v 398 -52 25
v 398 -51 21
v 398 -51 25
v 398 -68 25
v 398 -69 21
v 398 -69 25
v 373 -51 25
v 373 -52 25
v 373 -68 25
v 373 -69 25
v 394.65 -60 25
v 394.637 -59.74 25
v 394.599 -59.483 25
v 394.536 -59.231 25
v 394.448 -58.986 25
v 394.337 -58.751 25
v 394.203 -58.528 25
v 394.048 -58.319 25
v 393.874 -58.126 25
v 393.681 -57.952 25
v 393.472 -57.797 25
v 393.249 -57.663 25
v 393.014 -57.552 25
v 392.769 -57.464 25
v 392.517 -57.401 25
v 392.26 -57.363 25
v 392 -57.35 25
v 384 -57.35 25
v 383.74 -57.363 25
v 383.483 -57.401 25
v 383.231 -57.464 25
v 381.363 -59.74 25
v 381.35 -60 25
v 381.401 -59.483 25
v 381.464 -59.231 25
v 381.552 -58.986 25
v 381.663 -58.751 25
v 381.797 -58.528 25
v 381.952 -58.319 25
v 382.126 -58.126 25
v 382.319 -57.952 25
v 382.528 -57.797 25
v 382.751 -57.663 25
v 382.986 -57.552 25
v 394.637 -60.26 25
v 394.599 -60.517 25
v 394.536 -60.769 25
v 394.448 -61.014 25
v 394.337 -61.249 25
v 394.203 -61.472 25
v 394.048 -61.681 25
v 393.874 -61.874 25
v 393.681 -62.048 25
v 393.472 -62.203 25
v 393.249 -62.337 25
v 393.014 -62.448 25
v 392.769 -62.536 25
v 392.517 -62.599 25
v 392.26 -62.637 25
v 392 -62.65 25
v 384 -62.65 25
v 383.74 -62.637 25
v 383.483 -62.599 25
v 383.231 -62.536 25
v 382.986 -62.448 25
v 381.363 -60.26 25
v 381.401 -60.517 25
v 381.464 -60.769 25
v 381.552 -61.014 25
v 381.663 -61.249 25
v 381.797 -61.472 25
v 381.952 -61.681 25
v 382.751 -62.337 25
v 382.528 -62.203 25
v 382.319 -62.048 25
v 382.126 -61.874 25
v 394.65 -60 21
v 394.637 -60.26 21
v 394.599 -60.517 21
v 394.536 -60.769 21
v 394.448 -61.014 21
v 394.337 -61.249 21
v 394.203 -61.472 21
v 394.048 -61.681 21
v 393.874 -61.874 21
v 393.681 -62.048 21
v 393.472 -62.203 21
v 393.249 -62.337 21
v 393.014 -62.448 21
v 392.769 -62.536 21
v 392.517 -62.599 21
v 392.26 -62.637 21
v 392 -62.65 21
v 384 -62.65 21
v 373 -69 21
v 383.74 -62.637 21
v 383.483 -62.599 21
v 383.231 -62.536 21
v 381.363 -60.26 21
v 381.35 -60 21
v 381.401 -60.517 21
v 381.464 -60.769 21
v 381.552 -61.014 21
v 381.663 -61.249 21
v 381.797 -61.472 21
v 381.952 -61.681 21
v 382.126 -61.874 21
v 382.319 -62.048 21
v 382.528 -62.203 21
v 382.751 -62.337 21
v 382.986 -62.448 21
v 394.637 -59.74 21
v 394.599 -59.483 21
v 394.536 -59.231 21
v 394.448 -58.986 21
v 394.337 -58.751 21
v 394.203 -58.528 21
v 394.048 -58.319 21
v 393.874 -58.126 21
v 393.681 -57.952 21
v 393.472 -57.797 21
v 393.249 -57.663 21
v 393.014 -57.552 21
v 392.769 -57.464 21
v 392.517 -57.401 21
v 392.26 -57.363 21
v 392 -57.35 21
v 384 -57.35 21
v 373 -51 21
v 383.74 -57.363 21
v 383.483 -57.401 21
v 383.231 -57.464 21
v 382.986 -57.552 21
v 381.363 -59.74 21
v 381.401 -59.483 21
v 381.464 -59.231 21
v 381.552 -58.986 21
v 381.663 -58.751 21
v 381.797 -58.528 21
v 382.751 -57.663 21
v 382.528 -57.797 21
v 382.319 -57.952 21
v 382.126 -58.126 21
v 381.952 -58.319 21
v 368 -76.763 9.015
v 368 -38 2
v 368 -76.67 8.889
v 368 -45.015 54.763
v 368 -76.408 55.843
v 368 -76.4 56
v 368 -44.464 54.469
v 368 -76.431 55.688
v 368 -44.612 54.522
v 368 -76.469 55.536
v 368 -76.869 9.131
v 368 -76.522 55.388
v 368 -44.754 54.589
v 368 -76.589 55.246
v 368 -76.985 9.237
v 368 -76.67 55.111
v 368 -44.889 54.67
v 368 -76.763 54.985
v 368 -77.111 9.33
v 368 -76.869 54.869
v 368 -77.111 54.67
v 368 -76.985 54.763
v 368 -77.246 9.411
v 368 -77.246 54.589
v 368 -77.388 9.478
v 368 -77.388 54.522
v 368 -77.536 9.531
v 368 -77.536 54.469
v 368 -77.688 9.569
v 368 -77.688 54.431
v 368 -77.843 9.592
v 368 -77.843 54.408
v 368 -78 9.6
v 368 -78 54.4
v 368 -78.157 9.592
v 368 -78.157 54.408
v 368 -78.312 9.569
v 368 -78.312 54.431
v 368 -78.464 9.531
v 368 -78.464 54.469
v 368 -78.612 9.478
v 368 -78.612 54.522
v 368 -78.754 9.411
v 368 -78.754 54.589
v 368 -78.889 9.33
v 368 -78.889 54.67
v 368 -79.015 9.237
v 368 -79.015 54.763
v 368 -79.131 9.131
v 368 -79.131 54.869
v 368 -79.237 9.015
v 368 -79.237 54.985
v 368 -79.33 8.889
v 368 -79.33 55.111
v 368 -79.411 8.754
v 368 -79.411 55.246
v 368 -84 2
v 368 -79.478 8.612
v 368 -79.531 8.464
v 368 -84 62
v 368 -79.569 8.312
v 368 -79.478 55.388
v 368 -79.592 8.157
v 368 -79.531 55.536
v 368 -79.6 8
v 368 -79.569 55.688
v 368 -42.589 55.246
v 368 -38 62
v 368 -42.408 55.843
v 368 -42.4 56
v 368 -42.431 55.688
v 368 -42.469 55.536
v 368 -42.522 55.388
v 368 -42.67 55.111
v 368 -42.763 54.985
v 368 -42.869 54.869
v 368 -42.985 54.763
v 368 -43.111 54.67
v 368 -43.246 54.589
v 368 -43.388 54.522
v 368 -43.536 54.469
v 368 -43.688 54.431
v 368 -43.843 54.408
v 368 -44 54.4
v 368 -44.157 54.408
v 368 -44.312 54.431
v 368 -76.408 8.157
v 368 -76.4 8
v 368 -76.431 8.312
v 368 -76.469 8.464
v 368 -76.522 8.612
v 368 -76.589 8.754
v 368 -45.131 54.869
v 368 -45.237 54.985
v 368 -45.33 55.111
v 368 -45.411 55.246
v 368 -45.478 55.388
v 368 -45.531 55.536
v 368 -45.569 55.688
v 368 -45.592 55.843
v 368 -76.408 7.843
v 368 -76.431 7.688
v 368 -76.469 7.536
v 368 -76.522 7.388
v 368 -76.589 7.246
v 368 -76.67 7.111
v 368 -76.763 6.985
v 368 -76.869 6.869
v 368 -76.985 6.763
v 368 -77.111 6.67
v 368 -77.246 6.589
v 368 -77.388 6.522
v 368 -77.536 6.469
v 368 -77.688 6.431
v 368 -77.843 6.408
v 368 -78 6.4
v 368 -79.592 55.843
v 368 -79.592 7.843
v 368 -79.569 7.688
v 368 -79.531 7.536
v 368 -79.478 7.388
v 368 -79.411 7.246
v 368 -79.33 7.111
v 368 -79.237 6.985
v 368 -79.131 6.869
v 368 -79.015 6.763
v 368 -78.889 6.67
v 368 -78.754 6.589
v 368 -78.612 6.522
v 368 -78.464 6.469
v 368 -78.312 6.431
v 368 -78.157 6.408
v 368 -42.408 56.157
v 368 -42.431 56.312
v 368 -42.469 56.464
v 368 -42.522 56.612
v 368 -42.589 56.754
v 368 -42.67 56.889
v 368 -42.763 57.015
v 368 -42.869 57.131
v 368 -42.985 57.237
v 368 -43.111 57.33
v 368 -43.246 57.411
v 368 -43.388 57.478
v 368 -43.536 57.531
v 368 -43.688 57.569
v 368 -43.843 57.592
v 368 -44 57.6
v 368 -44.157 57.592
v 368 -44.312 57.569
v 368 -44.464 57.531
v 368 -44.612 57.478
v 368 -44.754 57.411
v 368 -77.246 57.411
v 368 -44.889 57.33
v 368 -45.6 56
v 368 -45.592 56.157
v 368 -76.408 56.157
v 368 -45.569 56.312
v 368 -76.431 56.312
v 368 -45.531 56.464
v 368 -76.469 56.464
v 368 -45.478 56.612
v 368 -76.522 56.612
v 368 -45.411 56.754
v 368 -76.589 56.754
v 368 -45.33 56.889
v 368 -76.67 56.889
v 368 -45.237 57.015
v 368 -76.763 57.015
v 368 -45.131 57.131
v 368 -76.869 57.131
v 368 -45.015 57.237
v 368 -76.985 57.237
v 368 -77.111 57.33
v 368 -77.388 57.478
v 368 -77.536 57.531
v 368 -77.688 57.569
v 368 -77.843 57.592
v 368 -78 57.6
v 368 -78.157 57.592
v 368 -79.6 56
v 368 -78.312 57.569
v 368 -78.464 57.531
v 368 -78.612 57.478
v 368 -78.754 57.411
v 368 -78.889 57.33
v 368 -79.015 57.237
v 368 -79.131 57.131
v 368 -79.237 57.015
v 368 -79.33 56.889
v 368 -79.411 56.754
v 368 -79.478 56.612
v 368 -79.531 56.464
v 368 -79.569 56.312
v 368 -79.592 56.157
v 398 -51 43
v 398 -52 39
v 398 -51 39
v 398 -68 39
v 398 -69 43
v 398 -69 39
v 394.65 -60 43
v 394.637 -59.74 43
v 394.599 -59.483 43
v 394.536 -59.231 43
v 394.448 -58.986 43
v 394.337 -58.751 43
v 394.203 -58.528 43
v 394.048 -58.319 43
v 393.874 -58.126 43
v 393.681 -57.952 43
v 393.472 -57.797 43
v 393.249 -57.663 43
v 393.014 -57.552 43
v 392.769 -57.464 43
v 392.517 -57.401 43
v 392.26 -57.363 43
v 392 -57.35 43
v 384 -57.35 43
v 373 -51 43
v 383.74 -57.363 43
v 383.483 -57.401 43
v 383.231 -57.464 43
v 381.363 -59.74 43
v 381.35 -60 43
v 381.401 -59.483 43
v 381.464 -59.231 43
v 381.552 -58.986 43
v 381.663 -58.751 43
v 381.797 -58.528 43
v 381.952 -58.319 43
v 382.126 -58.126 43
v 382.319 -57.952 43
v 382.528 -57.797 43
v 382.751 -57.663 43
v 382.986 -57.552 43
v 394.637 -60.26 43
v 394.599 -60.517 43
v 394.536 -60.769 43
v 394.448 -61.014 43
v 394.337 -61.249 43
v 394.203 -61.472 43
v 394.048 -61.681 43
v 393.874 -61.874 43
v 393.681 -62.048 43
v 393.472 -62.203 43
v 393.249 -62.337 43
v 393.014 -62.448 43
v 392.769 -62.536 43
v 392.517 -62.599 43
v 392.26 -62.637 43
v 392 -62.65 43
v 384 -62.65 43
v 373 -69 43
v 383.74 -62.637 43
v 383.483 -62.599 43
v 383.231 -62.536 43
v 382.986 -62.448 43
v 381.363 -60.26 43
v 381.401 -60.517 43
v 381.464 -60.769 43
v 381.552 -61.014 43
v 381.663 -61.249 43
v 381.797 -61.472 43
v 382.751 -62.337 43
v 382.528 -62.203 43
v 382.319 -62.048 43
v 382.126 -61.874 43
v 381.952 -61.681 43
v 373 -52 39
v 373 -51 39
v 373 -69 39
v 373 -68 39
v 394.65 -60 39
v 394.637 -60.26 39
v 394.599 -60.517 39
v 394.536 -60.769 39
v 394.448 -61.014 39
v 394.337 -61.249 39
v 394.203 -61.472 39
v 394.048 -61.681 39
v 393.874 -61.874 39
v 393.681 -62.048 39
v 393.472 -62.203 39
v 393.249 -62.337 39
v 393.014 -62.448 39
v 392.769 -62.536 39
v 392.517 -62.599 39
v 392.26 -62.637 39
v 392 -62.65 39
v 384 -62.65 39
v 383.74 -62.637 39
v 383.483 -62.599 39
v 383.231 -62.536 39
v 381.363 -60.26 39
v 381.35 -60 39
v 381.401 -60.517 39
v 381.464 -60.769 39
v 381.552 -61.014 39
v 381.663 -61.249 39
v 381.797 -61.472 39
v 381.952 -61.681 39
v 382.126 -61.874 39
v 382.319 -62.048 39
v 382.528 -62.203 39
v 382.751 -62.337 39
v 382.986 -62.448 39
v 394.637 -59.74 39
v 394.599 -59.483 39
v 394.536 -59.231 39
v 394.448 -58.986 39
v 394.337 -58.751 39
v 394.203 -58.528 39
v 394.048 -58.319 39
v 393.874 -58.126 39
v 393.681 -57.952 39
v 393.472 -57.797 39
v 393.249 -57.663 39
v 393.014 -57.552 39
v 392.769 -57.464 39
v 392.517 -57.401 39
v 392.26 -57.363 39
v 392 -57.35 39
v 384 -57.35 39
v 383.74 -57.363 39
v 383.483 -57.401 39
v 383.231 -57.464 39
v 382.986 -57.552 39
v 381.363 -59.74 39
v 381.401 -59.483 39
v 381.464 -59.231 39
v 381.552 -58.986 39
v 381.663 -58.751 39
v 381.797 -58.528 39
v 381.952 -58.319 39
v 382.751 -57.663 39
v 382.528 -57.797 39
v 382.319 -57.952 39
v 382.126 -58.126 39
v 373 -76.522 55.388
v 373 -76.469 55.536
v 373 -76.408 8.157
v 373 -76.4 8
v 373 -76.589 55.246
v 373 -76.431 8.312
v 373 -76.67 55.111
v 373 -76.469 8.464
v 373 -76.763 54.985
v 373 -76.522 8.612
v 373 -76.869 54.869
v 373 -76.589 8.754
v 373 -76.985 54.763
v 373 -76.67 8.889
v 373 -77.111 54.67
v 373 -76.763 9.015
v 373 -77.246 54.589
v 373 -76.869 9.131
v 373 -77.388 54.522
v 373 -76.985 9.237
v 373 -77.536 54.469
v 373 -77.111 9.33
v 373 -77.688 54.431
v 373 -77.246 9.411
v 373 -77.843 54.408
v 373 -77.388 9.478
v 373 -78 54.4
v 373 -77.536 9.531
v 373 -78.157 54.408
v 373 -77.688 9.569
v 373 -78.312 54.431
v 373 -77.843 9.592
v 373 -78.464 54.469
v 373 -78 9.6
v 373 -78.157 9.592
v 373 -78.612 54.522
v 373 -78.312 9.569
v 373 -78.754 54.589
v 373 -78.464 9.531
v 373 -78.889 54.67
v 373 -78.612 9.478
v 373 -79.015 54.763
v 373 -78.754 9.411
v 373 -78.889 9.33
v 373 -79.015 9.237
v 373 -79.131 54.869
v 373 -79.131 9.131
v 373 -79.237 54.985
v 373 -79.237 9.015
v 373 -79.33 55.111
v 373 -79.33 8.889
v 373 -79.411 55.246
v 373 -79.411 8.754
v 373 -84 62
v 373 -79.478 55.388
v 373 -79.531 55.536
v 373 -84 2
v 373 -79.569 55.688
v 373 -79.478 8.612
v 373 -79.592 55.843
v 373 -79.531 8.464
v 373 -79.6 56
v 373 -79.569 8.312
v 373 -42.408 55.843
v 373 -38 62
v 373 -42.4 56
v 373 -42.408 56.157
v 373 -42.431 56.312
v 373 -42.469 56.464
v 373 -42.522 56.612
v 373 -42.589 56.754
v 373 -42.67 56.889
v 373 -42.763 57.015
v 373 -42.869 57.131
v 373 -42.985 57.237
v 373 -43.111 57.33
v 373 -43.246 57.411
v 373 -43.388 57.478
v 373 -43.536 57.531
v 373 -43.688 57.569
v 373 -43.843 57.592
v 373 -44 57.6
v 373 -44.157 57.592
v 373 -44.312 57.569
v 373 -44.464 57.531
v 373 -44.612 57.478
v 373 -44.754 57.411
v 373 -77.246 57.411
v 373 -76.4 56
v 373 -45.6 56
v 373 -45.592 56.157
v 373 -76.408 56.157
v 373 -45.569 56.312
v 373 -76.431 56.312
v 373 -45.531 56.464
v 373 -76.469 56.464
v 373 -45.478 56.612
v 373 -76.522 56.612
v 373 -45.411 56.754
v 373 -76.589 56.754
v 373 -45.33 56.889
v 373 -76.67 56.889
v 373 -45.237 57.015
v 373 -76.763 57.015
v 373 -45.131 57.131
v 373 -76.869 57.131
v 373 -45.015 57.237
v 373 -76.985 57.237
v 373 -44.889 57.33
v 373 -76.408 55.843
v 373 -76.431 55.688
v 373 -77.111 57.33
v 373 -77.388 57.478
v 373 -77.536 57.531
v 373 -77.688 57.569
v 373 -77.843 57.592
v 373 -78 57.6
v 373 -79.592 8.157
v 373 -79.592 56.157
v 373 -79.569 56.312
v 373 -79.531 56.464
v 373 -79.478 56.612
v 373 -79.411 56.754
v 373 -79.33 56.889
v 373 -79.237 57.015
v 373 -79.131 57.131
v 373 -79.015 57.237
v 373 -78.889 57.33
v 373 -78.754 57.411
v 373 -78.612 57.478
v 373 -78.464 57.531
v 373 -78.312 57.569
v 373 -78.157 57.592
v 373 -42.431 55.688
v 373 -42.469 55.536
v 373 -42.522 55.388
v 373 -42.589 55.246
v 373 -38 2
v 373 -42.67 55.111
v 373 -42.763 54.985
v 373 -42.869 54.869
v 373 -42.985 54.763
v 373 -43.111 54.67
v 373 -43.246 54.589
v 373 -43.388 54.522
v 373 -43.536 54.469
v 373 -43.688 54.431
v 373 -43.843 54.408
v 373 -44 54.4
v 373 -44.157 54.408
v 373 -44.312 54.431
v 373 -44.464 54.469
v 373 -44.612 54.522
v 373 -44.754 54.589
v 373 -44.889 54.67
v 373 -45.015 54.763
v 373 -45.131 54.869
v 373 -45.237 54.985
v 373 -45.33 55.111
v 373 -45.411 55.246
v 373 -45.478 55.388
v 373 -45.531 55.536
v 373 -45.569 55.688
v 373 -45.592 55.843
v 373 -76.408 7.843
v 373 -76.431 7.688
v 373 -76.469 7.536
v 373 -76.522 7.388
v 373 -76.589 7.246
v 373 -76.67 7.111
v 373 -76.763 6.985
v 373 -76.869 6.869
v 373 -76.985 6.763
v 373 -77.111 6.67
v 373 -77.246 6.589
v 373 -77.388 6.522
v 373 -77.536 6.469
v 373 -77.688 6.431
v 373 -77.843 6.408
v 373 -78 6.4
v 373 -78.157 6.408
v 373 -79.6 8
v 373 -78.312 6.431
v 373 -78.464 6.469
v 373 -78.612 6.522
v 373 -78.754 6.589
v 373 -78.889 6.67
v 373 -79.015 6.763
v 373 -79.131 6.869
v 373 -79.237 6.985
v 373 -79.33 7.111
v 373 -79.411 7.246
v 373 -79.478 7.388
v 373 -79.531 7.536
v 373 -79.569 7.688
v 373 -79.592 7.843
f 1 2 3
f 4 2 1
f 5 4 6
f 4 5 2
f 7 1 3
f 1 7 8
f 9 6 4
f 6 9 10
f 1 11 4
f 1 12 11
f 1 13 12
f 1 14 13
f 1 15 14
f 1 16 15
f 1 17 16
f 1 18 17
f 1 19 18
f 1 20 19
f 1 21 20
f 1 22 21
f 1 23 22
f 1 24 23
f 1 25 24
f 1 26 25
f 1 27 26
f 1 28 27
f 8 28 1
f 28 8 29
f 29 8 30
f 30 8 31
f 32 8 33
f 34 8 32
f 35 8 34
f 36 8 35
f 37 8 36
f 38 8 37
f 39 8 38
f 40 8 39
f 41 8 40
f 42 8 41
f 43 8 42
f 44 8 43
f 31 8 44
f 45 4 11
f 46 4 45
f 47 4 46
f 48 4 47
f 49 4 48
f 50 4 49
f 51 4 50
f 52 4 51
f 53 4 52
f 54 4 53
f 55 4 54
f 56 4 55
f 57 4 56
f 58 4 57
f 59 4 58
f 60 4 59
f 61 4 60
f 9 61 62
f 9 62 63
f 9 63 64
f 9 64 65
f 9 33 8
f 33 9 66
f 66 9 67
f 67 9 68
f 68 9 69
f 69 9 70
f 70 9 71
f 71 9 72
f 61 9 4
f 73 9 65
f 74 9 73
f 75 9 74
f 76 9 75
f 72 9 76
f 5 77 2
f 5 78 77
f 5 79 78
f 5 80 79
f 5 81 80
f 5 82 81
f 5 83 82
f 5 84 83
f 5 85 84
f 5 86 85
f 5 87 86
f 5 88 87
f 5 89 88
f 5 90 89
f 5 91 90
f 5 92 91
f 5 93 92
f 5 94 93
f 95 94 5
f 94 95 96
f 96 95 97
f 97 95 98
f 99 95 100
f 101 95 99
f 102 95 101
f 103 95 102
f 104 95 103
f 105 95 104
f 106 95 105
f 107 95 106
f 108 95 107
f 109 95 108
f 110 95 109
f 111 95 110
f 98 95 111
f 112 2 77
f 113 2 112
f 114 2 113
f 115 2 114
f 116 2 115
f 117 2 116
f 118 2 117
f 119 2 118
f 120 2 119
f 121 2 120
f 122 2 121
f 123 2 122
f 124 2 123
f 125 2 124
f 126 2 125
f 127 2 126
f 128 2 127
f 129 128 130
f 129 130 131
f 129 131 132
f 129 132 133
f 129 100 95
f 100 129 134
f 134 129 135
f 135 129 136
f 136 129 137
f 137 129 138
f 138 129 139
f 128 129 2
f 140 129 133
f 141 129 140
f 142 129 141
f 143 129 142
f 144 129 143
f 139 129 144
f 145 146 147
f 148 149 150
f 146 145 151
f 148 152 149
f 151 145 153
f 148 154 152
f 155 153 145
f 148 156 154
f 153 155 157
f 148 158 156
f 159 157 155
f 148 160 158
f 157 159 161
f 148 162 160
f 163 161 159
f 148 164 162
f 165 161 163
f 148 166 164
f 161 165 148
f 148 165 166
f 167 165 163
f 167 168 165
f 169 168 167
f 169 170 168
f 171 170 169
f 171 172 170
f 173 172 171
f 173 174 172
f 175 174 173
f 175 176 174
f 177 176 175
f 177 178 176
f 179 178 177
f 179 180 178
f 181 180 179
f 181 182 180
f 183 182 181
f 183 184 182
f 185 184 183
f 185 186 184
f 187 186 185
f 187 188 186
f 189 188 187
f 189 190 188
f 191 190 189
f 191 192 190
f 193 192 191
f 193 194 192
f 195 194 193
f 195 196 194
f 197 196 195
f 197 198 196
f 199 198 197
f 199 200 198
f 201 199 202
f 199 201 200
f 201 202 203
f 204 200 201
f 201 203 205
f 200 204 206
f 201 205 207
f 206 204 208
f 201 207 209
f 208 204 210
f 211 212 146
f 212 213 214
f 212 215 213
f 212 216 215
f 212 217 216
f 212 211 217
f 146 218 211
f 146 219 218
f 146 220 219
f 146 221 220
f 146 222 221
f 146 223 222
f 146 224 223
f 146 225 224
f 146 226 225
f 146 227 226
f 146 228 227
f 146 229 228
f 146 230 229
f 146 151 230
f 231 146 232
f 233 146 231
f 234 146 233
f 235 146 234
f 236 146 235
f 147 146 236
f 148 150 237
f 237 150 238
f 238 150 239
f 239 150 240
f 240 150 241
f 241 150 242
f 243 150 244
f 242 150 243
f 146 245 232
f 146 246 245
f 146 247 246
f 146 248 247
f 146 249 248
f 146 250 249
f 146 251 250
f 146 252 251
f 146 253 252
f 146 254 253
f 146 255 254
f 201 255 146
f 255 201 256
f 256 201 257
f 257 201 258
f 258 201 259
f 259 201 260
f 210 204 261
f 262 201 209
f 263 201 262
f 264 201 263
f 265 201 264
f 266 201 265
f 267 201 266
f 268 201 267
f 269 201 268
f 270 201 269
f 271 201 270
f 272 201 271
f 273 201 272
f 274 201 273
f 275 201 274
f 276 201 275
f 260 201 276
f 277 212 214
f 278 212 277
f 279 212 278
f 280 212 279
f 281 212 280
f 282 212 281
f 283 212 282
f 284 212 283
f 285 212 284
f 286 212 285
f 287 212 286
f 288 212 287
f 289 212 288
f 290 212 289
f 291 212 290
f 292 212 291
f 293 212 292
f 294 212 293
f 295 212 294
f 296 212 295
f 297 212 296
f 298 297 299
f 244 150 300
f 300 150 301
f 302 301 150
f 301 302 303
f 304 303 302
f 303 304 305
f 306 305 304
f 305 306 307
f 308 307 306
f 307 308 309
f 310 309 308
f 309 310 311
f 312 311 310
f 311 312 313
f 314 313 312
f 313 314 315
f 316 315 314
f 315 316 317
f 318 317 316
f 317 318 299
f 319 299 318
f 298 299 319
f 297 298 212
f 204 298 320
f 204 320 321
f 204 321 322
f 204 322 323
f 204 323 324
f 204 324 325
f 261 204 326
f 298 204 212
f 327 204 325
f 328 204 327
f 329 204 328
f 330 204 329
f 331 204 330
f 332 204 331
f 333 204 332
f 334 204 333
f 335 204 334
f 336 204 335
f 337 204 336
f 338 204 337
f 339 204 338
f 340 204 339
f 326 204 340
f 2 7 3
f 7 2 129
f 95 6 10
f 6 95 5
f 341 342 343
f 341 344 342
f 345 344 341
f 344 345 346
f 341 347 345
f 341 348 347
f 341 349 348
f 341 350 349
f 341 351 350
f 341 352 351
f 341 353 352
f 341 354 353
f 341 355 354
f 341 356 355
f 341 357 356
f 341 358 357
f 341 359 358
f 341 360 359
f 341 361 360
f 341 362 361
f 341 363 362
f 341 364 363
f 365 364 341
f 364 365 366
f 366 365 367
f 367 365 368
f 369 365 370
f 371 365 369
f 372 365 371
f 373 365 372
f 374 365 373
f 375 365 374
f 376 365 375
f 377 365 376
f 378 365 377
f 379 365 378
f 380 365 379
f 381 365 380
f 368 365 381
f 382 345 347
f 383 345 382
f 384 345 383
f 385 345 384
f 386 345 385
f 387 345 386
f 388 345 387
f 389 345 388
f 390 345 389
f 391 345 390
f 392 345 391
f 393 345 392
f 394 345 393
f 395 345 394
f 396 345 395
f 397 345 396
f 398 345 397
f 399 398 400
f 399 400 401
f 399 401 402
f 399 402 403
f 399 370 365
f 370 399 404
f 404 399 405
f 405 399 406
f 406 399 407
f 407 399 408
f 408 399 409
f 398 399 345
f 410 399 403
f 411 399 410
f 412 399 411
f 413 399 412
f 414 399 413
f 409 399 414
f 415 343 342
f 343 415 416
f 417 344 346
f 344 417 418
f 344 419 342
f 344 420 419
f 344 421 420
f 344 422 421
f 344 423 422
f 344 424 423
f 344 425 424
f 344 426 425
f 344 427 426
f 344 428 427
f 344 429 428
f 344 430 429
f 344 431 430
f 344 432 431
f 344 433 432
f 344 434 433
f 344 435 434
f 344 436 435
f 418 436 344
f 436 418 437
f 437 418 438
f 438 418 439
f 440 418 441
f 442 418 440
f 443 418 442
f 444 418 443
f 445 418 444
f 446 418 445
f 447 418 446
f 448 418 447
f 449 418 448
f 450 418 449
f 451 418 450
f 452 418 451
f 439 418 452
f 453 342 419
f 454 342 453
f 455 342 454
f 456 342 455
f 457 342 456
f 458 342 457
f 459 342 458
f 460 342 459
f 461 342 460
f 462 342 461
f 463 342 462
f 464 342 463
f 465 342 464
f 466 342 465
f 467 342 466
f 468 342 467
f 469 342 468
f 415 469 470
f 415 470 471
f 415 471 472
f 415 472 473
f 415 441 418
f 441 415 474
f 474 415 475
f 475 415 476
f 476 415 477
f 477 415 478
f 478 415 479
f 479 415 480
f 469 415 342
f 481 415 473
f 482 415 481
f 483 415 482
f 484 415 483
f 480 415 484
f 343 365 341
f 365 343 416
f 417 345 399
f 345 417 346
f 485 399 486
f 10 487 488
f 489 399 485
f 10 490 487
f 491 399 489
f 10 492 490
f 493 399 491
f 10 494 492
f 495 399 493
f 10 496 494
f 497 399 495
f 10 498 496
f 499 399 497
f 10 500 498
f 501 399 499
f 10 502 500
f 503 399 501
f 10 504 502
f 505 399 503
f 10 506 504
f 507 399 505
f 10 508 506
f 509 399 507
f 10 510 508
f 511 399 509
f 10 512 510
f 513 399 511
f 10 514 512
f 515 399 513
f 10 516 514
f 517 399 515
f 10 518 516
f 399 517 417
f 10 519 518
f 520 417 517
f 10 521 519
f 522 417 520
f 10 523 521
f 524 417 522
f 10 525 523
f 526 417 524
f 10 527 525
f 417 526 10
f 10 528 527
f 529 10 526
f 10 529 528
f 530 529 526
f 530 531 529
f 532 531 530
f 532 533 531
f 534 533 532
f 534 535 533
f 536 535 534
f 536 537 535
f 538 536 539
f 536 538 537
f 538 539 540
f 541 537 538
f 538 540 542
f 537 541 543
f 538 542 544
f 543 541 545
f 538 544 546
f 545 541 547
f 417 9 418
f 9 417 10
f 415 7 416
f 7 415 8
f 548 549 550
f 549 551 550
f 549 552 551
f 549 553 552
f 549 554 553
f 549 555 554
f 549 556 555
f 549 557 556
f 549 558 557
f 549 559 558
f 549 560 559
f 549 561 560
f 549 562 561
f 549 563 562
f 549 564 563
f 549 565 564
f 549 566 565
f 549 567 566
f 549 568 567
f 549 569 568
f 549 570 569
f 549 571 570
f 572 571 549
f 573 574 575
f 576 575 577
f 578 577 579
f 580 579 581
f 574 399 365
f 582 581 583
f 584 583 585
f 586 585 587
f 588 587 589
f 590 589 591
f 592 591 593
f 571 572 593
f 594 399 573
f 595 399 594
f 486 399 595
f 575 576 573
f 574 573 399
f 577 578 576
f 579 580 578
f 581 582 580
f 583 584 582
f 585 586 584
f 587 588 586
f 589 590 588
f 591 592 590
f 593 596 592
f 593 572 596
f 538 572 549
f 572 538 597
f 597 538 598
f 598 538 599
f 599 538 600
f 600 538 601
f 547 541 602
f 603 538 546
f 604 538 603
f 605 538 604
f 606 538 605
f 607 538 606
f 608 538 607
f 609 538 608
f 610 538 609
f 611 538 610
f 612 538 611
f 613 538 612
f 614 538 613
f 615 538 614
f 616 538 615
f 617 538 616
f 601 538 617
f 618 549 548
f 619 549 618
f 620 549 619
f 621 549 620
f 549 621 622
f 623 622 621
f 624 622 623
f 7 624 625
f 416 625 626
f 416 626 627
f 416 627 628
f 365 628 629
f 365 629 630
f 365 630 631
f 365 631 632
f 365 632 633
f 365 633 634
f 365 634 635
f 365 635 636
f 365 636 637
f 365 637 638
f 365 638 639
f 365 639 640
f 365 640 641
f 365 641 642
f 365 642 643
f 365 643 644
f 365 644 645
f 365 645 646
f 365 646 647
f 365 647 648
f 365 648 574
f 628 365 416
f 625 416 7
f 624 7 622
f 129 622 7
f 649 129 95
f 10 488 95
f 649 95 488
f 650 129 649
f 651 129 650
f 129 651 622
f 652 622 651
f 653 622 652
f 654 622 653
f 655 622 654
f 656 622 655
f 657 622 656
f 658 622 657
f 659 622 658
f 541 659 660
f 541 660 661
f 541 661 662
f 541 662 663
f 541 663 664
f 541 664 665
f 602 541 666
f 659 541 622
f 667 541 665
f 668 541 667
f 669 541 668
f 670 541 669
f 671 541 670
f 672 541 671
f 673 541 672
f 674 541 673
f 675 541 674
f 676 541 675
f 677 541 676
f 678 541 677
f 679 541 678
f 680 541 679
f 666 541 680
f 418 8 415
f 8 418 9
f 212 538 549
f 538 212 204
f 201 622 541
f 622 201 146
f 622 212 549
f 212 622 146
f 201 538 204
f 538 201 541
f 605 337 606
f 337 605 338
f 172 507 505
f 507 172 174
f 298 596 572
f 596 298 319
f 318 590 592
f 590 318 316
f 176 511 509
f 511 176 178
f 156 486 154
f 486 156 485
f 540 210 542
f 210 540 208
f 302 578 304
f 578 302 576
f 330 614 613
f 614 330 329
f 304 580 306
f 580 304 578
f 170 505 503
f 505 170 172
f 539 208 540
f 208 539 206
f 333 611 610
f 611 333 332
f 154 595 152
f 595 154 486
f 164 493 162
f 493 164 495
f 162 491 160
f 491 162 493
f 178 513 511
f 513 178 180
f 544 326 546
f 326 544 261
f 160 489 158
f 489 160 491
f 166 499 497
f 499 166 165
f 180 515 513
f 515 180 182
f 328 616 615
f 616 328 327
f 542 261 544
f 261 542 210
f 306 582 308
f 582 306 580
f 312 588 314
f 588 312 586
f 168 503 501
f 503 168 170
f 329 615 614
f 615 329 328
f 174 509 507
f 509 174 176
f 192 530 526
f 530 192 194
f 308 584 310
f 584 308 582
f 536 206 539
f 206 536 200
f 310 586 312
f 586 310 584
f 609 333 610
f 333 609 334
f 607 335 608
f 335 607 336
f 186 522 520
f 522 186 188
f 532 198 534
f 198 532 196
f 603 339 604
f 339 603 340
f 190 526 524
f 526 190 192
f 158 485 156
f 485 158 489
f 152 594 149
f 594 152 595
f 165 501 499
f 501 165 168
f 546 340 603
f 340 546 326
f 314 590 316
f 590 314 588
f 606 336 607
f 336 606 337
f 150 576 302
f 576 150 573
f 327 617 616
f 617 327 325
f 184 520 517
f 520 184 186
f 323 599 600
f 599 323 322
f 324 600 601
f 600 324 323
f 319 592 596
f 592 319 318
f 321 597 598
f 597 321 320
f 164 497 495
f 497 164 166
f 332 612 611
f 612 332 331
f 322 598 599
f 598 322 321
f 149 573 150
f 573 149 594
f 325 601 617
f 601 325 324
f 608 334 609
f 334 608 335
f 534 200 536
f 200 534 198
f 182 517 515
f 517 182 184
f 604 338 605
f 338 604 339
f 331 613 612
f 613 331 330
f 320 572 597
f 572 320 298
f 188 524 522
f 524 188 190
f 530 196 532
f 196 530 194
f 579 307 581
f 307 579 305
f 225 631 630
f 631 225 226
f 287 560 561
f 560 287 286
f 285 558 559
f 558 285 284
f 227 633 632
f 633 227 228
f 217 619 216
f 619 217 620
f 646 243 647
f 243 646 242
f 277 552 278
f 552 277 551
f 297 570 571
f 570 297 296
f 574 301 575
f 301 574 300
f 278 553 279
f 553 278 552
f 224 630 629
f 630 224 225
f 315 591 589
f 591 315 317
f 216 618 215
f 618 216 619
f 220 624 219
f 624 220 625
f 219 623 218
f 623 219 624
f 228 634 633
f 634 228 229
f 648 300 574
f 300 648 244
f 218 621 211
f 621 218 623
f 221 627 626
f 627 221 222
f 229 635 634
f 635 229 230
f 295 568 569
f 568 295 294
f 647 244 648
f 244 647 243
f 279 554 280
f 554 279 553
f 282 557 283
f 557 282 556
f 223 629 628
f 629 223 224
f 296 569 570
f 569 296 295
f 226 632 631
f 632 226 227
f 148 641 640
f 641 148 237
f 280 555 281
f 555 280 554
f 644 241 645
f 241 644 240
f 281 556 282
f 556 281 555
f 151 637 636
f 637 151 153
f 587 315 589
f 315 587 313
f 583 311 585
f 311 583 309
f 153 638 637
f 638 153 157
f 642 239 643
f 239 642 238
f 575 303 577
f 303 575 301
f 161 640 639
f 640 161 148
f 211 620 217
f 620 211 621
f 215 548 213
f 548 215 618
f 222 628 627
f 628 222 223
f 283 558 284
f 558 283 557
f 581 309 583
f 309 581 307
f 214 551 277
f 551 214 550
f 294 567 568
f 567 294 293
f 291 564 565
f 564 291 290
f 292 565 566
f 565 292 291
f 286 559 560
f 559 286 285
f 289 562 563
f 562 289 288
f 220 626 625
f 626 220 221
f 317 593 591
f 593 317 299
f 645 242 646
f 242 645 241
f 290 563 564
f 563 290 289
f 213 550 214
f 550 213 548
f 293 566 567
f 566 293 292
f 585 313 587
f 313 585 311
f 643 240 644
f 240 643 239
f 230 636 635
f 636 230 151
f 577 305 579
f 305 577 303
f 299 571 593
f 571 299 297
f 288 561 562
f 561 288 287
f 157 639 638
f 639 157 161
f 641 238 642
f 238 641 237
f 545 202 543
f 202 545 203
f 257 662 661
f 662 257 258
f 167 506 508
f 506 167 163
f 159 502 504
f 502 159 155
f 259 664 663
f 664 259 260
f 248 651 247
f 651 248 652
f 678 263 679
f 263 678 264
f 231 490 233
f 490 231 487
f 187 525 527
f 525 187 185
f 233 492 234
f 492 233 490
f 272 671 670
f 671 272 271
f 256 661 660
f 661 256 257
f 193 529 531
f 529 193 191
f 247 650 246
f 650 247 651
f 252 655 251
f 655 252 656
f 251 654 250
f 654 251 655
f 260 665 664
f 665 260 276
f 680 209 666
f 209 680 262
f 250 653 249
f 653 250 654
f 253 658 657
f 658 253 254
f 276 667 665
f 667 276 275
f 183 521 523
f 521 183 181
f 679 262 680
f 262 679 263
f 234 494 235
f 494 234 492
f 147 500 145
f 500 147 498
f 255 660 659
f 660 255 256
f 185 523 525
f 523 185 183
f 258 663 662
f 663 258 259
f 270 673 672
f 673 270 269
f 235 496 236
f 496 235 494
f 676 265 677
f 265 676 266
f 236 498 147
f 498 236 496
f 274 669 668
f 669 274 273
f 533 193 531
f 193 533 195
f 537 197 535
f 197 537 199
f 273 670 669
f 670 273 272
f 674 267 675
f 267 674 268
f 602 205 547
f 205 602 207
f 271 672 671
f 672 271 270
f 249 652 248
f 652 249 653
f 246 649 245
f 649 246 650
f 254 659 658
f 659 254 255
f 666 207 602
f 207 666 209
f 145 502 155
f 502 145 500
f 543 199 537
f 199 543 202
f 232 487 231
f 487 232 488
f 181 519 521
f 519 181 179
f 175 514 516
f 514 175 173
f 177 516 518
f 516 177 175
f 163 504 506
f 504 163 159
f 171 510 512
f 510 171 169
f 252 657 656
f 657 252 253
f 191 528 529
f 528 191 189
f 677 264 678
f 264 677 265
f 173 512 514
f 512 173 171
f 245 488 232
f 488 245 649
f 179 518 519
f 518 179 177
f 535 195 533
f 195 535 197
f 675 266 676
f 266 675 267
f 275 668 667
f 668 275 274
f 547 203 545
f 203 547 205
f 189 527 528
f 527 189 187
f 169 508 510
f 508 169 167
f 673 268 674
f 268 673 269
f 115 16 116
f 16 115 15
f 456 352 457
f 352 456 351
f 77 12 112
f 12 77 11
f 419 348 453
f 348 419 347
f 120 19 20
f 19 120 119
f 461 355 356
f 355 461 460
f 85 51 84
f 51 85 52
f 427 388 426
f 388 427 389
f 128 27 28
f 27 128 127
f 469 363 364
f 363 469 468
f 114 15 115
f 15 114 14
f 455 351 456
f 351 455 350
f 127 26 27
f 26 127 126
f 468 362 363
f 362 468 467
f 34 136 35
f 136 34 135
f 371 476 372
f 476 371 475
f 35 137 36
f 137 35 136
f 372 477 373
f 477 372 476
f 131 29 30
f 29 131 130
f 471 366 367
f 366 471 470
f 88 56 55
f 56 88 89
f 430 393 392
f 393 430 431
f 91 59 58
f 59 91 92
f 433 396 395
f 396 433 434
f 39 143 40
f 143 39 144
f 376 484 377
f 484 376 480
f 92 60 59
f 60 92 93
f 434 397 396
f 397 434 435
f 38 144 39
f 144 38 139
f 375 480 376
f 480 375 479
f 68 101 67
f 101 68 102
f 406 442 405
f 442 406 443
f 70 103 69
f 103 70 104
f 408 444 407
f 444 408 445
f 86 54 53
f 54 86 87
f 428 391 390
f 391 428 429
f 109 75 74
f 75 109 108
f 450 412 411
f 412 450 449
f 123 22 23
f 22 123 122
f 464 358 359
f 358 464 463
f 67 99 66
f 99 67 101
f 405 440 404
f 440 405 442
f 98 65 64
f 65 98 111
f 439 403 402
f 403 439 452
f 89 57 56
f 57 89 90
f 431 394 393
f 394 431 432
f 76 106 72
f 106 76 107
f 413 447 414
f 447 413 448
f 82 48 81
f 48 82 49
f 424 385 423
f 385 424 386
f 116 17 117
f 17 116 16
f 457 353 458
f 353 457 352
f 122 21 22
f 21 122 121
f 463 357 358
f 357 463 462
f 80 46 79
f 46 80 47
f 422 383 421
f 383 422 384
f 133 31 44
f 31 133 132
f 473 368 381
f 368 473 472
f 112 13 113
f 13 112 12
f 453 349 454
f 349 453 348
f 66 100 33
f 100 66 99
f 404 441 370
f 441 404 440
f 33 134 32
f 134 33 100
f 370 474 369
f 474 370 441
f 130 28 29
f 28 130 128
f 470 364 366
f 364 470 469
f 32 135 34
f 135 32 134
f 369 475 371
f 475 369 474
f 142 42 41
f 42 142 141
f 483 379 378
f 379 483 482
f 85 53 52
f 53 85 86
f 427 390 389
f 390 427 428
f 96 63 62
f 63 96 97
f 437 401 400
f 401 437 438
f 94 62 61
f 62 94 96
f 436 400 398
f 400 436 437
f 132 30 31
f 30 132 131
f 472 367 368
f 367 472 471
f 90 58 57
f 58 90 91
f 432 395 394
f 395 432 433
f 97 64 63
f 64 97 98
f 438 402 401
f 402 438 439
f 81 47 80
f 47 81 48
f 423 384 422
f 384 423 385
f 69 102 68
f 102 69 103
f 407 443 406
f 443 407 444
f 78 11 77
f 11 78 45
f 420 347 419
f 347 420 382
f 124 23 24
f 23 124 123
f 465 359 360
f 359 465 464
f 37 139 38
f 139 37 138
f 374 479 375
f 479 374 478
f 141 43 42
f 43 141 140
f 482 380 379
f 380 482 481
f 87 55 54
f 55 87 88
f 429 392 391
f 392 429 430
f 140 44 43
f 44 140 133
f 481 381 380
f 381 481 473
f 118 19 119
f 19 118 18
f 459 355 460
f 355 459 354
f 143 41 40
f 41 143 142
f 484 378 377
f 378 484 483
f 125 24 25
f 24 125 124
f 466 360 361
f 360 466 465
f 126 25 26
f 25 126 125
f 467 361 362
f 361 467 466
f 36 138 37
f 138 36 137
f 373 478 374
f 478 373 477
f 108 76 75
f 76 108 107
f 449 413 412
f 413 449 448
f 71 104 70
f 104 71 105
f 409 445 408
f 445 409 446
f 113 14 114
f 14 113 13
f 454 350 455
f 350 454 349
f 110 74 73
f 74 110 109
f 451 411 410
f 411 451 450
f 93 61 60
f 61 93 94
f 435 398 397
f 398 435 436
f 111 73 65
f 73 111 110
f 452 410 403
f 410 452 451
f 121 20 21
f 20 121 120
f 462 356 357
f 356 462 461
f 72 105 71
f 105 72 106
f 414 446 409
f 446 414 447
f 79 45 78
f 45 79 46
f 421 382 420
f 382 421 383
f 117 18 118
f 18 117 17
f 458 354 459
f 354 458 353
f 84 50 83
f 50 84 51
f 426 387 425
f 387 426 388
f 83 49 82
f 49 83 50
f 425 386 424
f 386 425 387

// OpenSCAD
// file: ../fj.scad
// FreeJet FJ-1 - shared dimensions and helpers.
// Coordinates (mm): X = carriage travel (left -> right, 0 = inner face of the left plate)
//                   Y = paper travel (paper moves toward +Y, 0 = printhead nozzle line)
//                   Z = up (0 = paper surface on the platen)
// Every part file includes this, so changing a number here moves everything.

$fn = 64;
e = 0.01;
tol = 0.25;          // clearance for printed fits

// ---- frame ----------------------------------------------------------------
inner_w   = 360;     // distance between the side plates
plate_t   = 8;
rod_d     = 8;       // all rods: 8 mm x 400 mm smooth rod
rod_len   = 400;
plate_y0  = -112;    // side plate outline in Y
plate_y1  = 88;
plate_z0  = -70;     // bottom of the feet
plate_z1  = 70;

// ---- carriage rods ------------------------------------------------------------
rail_y    = -42;
rail_lo_z = 14;
rail_hi_z = 50;
belt_y    = -60;     // axis line of the X motor pulley and idler (both vertical)
belt_z    = 32;      // height of the belt centre
belt_r    = 20*2/PI/2;          // 20T GT2 pitch radius
belt_front_y = belt_y + belt_r; // strand clamped to the carriage
belt_back_y  = belt_y - belt_r; // return strand, passes behind the carriage

// ---- paper path -------------------------------------------------------------
tire_od   = 22;      // drive and pinch roller outside diameter
in_y      = -76;     // input nip (rollers before the printhead)
out_y     = 52;      // output nip (star wheels after the printhead)
shaft_z   = -tire_od/2;
pinch_z   = tire_od/2;
star_od   = 18;
star_z    = star_od/2;
platen_rod_y = [-40, 26];
platen_rod_z = -13;
platen_y0 = -62;     // platen top surface extent
platen_y1 = 84;
sensor_y  = -54;     // paper lever switch
paper_x0  = 70;      // paper left edge (fixed guide)
paper_w   = 220;     // widest sheet
sensor_x  = paper_x0 + 14;   // paper lever switch X
tire_x    = [paper_x0+20, paper_x0+75, paper_x0+145, paper_x0+200];  // roller positions

// ---- feed drive ---------------------------------------------------------------
pulley_teeth = 76;   // printed GT2 pulleys on both roller shafts
feed_motor_y = -12;
feed_motor_z = -44;  // 400 mm closed GT2 loop around 76T + 76T + 20T

// ---- printhead / cartridge (MEASURE YOUR HP45 AND ADJUST) -----------------------
cart_w    = 24.5;    // across the carriage travel (X)
cart_d    = 50;      // front-to-back (Y)
cart_h    = 62;
nz_back   = 19;      // nozzle line distance from the contact (back) face
head_gap  = 1.2;     // nozzle plate height above the paper
pad_z0    = 3;       // contact pad footprint origin above the cartridge bottom
carr_w    = 54;      // carriage width along X
park_x    = 33;      // carriage centre X when parked (capped)

// ---- service station ------------------------------------------------------------
home_x    = 30;      // carriage centre X where the home switch trips (firmware X = 0)
sled_engage = 9;     // sled travel when parked (cap pressed on the nozzles)
cap_x     = park_x + sled_engage;   // cap centre with the sled retracted
wiper_x   = 56;
spit_x    = 62;      // firmware spit_x_um = (spit_x - home_x) * 1000

// ---- hardware -----------------------------------------------------------------
lm8uu_d = 15; lm8uu_l = 24;
b608_d = 22; b608_w = 7;
m3 = 3.2; m3_head = 6; m3_nut = 6.4;   // across flats + tolerance
m25 = 2.7;
nema_hole = 31; nema_body = 42.3; nema_boss = 22.5;

module rod_hole(l=40, d=rod_d+tol) { cylinder(d=d, h=l, center=true); }
module m3_hole(l=40) { cylinder(d=m3, h=l, center=true); }
module m3_nut_trap(h=3) { cylinder(d=m3_nut/cos(30), h=h, $fn=6); }
module rounded_box(size, r=3) {
    hull() for (x=[r, size[0]-r], y=[r, size[1]-r]) translate([x, y, 0]) cylinder(r=r, h=size[2]);
}
module nema17_holes(l=20, slot=0) {
    for (x=[-1,1], y=[-1,1]) hull() for (s=[-slot/2, slot/2])
        translate([x*nema_hole/2, y*nema_hole/2 + s, 0]) cylinder(d=m3, h=l, center=true);
    hull() for (s=[-slot/2, slot/2]) translate([0, s, 0]) cylinder(d=nema_boss+1, h=l, center=true);
}

// ---- carriage details ------------------------------------------------------------
carr_z0   = head_gap + 2.5;   // carriage walls stop above the nozzle plate
carr_z1   = 64;
pcb_w     = 44;  pcb_h = 46;  pcb_t = 1.6;   // printhead board
pcb_back  = 5;                 // component height behind the board
cart_rest_z = 18;              // height (above cartridge bottom) of the side rest tabs; 0 = none
// main file
// Carriage belt idler - bolts to the outside of the RIGHT plate. 20T GT2 idler (5 mm bore)
// on an M5x30 bolt; the slot lets you tension the belt.
include <../fj.scad>
module x_idler_bracket() {
x0 = inner_w + plate_t;
ix = x0 + 20;
difference() {
    union() {
        translate([x0, belt_y - 24, belt_z - 30]) cube([5, 46, 60]);
        for (z=[belt_z - 11, belt_z + 7]) translate([x0, belt_y - 9, z]) cube([30, 18, 4]);
    }
    for (p=[[belt_y-18, belt_z+24], [belt_y+16, belt_z+24], [belt_y-18, belt_z-24]])
        translate([x0 + 2.5, p[0], p[1]]) rotate([0,90,0]) cylinder(d=m3, h=12, center=true);
    hull() for (dx=[-4, 4]) translate([ix + dx, belt_y, belt_z]) cylinder(d=5.3, h=40, center=true);
    translate([x0 + 5, belt_y - 8, belt_z - 7]) cube([30, 16, 14]);   // room for the idler
}
}
x_idler_bracket();
